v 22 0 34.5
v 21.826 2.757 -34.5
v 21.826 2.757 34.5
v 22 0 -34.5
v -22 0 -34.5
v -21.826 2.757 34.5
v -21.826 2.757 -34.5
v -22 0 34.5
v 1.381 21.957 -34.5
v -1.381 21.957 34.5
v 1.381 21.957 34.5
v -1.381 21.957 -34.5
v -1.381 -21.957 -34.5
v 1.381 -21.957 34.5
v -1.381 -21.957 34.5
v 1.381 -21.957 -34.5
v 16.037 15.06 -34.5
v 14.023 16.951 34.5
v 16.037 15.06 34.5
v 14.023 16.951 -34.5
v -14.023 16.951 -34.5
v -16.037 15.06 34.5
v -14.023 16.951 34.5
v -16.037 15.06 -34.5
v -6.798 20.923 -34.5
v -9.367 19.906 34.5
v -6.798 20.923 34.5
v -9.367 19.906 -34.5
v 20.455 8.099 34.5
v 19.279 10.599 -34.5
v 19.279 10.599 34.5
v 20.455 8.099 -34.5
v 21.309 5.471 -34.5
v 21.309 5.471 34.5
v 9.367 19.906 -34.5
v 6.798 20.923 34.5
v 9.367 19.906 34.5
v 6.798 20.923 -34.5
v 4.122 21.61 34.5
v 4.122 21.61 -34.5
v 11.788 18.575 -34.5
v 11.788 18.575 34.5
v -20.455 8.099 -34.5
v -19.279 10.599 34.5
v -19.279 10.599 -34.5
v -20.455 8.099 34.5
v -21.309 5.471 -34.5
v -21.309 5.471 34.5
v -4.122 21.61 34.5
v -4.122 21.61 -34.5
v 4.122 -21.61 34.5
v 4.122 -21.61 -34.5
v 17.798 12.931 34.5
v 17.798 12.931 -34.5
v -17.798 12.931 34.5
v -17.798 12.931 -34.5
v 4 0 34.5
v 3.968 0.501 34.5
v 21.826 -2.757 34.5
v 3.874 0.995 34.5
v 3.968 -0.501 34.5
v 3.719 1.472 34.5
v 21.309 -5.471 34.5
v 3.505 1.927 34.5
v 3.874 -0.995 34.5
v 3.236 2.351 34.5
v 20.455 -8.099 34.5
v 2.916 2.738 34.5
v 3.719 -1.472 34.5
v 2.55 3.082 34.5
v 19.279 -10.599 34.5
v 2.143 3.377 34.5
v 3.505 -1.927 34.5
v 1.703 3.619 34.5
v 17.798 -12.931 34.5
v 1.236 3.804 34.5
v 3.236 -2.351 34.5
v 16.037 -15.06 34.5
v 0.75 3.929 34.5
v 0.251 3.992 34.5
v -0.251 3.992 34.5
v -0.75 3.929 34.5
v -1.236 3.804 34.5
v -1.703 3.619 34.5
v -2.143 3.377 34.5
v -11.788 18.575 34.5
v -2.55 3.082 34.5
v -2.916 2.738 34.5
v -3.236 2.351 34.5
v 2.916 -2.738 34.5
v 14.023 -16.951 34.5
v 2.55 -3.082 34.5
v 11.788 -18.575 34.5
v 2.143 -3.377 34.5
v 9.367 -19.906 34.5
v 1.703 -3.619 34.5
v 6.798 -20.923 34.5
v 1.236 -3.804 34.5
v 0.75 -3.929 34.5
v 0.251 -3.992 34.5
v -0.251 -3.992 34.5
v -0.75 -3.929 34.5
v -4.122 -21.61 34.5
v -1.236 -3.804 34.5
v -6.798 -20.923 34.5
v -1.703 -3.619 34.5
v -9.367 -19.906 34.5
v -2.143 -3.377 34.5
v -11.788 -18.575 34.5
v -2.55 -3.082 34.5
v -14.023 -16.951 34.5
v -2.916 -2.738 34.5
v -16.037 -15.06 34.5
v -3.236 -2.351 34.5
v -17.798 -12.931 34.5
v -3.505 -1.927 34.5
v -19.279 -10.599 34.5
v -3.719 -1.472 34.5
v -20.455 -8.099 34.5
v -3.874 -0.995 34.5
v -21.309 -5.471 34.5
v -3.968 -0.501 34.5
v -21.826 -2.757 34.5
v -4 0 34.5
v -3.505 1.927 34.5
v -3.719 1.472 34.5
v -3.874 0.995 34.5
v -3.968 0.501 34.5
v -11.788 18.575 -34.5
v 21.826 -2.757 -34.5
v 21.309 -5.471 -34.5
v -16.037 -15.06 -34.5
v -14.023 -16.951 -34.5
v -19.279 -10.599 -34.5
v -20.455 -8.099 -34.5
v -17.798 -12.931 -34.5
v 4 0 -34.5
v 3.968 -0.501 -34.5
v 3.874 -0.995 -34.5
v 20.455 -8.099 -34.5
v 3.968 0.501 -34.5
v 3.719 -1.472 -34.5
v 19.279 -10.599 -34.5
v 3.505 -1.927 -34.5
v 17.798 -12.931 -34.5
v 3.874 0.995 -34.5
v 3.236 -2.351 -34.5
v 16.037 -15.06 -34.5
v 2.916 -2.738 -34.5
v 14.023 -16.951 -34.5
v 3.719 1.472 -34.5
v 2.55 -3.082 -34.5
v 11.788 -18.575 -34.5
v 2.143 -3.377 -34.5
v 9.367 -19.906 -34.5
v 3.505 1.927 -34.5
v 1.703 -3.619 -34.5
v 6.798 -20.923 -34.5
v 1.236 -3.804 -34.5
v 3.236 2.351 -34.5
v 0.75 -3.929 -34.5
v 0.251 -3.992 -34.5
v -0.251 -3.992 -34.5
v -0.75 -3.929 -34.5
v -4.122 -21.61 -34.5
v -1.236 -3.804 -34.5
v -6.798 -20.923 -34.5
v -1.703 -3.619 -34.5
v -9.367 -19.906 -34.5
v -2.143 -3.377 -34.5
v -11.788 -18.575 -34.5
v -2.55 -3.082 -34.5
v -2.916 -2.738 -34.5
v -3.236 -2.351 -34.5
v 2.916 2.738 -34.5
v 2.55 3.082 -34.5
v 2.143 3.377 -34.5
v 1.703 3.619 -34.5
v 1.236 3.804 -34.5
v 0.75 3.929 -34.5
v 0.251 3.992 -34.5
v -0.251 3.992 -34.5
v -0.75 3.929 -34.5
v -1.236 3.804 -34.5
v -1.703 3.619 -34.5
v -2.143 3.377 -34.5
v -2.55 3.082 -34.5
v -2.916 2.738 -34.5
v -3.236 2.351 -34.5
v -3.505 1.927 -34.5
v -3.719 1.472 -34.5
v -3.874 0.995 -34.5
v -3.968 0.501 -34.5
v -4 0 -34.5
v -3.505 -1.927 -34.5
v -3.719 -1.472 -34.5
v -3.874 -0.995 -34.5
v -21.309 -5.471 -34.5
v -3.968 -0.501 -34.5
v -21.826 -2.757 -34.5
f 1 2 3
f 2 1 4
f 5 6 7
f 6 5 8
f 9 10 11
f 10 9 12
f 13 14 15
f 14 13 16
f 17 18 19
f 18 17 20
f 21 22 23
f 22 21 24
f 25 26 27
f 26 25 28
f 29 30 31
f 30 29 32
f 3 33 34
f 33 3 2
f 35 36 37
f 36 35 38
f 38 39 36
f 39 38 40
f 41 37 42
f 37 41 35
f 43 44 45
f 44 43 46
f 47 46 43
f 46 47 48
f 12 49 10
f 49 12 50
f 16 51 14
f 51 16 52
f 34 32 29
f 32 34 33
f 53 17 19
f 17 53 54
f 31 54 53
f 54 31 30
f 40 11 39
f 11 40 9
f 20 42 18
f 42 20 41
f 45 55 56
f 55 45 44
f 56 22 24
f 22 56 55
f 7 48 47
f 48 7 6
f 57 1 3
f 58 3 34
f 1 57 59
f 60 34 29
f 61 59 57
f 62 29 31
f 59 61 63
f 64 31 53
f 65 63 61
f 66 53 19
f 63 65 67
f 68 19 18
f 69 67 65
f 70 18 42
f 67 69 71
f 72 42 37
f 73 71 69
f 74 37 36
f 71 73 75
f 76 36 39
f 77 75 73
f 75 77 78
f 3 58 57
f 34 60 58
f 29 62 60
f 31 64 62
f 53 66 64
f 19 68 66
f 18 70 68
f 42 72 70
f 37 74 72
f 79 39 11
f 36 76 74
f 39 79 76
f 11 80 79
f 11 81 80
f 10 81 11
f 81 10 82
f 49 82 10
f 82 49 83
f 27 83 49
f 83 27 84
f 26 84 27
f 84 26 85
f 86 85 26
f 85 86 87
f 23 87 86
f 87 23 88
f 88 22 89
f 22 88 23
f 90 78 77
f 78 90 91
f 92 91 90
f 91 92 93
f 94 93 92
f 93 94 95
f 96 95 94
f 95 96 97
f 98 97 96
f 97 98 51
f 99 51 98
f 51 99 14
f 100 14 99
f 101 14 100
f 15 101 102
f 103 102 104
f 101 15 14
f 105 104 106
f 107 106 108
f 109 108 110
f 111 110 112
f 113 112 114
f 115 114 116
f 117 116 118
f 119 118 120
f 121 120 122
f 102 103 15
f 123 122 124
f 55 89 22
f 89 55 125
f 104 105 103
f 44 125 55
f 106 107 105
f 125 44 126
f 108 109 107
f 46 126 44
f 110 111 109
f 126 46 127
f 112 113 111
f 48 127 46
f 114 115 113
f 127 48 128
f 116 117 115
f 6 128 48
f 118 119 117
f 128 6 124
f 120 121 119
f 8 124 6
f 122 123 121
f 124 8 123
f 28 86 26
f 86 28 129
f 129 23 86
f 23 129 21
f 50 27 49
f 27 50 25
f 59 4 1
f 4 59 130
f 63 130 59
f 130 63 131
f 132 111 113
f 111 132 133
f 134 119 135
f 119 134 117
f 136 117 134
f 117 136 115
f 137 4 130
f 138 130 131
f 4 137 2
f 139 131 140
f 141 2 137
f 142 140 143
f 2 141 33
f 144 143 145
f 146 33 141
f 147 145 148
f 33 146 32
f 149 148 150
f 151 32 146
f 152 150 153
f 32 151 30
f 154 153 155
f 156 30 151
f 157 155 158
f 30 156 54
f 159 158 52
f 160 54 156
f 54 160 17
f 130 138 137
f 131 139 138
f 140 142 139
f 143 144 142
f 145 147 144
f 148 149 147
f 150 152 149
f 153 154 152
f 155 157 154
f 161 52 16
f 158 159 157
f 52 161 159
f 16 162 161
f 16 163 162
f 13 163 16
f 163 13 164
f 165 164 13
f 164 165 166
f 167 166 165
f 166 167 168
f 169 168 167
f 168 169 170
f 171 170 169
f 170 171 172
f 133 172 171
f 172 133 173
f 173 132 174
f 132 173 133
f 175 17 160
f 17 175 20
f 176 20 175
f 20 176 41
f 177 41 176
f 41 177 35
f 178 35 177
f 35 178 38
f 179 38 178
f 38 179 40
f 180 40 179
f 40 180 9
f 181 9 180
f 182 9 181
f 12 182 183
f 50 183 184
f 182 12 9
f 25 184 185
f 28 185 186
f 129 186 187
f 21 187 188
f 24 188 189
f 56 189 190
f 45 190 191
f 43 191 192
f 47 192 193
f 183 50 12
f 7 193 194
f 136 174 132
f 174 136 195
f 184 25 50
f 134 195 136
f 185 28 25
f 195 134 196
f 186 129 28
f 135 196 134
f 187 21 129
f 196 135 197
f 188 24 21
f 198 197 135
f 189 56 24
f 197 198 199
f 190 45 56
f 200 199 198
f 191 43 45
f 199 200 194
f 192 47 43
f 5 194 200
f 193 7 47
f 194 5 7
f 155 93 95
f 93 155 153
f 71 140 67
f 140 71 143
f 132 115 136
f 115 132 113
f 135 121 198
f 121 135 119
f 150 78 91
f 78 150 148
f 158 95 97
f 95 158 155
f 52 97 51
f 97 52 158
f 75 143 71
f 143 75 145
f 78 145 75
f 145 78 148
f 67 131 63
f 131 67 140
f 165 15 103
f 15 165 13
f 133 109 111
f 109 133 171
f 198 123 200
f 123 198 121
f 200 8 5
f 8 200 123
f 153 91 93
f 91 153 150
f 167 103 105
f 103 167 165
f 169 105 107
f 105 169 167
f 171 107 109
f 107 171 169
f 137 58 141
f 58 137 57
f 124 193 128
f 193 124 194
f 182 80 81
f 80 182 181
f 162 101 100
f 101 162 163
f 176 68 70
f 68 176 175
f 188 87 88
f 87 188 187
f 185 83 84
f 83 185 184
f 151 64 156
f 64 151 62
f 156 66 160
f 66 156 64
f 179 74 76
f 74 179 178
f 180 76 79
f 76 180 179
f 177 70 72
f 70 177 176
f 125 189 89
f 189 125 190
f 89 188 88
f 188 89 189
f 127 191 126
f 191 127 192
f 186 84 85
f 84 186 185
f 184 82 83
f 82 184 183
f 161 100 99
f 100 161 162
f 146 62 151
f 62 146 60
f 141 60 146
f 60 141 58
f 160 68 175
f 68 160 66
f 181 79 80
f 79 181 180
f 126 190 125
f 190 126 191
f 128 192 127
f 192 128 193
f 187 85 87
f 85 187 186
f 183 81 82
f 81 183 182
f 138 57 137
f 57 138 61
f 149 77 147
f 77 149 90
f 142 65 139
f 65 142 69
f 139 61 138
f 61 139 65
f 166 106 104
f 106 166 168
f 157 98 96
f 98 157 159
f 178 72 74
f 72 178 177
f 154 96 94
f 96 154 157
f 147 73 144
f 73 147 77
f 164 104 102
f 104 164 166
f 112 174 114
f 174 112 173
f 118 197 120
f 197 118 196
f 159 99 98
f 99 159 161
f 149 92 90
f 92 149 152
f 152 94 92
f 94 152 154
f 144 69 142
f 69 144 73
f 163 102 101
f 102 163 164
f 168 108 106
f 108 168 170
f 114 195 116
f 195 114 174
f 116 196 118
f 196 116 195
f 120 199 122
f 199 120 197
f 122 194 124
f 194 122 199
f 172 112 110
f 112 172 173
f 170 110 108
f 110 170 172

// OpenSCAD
$fn = 50;


difference() {
	union() {
		translate(v = [0, 0, -34.5000000000]) {
			cylinder(h = 69, r = 22.0000000000);
		}
	}
	union() {
		translate(v = [0, 0, -100.0000000000]) {
			cylinder(h = 200, r = 4);
		}
	}
}
